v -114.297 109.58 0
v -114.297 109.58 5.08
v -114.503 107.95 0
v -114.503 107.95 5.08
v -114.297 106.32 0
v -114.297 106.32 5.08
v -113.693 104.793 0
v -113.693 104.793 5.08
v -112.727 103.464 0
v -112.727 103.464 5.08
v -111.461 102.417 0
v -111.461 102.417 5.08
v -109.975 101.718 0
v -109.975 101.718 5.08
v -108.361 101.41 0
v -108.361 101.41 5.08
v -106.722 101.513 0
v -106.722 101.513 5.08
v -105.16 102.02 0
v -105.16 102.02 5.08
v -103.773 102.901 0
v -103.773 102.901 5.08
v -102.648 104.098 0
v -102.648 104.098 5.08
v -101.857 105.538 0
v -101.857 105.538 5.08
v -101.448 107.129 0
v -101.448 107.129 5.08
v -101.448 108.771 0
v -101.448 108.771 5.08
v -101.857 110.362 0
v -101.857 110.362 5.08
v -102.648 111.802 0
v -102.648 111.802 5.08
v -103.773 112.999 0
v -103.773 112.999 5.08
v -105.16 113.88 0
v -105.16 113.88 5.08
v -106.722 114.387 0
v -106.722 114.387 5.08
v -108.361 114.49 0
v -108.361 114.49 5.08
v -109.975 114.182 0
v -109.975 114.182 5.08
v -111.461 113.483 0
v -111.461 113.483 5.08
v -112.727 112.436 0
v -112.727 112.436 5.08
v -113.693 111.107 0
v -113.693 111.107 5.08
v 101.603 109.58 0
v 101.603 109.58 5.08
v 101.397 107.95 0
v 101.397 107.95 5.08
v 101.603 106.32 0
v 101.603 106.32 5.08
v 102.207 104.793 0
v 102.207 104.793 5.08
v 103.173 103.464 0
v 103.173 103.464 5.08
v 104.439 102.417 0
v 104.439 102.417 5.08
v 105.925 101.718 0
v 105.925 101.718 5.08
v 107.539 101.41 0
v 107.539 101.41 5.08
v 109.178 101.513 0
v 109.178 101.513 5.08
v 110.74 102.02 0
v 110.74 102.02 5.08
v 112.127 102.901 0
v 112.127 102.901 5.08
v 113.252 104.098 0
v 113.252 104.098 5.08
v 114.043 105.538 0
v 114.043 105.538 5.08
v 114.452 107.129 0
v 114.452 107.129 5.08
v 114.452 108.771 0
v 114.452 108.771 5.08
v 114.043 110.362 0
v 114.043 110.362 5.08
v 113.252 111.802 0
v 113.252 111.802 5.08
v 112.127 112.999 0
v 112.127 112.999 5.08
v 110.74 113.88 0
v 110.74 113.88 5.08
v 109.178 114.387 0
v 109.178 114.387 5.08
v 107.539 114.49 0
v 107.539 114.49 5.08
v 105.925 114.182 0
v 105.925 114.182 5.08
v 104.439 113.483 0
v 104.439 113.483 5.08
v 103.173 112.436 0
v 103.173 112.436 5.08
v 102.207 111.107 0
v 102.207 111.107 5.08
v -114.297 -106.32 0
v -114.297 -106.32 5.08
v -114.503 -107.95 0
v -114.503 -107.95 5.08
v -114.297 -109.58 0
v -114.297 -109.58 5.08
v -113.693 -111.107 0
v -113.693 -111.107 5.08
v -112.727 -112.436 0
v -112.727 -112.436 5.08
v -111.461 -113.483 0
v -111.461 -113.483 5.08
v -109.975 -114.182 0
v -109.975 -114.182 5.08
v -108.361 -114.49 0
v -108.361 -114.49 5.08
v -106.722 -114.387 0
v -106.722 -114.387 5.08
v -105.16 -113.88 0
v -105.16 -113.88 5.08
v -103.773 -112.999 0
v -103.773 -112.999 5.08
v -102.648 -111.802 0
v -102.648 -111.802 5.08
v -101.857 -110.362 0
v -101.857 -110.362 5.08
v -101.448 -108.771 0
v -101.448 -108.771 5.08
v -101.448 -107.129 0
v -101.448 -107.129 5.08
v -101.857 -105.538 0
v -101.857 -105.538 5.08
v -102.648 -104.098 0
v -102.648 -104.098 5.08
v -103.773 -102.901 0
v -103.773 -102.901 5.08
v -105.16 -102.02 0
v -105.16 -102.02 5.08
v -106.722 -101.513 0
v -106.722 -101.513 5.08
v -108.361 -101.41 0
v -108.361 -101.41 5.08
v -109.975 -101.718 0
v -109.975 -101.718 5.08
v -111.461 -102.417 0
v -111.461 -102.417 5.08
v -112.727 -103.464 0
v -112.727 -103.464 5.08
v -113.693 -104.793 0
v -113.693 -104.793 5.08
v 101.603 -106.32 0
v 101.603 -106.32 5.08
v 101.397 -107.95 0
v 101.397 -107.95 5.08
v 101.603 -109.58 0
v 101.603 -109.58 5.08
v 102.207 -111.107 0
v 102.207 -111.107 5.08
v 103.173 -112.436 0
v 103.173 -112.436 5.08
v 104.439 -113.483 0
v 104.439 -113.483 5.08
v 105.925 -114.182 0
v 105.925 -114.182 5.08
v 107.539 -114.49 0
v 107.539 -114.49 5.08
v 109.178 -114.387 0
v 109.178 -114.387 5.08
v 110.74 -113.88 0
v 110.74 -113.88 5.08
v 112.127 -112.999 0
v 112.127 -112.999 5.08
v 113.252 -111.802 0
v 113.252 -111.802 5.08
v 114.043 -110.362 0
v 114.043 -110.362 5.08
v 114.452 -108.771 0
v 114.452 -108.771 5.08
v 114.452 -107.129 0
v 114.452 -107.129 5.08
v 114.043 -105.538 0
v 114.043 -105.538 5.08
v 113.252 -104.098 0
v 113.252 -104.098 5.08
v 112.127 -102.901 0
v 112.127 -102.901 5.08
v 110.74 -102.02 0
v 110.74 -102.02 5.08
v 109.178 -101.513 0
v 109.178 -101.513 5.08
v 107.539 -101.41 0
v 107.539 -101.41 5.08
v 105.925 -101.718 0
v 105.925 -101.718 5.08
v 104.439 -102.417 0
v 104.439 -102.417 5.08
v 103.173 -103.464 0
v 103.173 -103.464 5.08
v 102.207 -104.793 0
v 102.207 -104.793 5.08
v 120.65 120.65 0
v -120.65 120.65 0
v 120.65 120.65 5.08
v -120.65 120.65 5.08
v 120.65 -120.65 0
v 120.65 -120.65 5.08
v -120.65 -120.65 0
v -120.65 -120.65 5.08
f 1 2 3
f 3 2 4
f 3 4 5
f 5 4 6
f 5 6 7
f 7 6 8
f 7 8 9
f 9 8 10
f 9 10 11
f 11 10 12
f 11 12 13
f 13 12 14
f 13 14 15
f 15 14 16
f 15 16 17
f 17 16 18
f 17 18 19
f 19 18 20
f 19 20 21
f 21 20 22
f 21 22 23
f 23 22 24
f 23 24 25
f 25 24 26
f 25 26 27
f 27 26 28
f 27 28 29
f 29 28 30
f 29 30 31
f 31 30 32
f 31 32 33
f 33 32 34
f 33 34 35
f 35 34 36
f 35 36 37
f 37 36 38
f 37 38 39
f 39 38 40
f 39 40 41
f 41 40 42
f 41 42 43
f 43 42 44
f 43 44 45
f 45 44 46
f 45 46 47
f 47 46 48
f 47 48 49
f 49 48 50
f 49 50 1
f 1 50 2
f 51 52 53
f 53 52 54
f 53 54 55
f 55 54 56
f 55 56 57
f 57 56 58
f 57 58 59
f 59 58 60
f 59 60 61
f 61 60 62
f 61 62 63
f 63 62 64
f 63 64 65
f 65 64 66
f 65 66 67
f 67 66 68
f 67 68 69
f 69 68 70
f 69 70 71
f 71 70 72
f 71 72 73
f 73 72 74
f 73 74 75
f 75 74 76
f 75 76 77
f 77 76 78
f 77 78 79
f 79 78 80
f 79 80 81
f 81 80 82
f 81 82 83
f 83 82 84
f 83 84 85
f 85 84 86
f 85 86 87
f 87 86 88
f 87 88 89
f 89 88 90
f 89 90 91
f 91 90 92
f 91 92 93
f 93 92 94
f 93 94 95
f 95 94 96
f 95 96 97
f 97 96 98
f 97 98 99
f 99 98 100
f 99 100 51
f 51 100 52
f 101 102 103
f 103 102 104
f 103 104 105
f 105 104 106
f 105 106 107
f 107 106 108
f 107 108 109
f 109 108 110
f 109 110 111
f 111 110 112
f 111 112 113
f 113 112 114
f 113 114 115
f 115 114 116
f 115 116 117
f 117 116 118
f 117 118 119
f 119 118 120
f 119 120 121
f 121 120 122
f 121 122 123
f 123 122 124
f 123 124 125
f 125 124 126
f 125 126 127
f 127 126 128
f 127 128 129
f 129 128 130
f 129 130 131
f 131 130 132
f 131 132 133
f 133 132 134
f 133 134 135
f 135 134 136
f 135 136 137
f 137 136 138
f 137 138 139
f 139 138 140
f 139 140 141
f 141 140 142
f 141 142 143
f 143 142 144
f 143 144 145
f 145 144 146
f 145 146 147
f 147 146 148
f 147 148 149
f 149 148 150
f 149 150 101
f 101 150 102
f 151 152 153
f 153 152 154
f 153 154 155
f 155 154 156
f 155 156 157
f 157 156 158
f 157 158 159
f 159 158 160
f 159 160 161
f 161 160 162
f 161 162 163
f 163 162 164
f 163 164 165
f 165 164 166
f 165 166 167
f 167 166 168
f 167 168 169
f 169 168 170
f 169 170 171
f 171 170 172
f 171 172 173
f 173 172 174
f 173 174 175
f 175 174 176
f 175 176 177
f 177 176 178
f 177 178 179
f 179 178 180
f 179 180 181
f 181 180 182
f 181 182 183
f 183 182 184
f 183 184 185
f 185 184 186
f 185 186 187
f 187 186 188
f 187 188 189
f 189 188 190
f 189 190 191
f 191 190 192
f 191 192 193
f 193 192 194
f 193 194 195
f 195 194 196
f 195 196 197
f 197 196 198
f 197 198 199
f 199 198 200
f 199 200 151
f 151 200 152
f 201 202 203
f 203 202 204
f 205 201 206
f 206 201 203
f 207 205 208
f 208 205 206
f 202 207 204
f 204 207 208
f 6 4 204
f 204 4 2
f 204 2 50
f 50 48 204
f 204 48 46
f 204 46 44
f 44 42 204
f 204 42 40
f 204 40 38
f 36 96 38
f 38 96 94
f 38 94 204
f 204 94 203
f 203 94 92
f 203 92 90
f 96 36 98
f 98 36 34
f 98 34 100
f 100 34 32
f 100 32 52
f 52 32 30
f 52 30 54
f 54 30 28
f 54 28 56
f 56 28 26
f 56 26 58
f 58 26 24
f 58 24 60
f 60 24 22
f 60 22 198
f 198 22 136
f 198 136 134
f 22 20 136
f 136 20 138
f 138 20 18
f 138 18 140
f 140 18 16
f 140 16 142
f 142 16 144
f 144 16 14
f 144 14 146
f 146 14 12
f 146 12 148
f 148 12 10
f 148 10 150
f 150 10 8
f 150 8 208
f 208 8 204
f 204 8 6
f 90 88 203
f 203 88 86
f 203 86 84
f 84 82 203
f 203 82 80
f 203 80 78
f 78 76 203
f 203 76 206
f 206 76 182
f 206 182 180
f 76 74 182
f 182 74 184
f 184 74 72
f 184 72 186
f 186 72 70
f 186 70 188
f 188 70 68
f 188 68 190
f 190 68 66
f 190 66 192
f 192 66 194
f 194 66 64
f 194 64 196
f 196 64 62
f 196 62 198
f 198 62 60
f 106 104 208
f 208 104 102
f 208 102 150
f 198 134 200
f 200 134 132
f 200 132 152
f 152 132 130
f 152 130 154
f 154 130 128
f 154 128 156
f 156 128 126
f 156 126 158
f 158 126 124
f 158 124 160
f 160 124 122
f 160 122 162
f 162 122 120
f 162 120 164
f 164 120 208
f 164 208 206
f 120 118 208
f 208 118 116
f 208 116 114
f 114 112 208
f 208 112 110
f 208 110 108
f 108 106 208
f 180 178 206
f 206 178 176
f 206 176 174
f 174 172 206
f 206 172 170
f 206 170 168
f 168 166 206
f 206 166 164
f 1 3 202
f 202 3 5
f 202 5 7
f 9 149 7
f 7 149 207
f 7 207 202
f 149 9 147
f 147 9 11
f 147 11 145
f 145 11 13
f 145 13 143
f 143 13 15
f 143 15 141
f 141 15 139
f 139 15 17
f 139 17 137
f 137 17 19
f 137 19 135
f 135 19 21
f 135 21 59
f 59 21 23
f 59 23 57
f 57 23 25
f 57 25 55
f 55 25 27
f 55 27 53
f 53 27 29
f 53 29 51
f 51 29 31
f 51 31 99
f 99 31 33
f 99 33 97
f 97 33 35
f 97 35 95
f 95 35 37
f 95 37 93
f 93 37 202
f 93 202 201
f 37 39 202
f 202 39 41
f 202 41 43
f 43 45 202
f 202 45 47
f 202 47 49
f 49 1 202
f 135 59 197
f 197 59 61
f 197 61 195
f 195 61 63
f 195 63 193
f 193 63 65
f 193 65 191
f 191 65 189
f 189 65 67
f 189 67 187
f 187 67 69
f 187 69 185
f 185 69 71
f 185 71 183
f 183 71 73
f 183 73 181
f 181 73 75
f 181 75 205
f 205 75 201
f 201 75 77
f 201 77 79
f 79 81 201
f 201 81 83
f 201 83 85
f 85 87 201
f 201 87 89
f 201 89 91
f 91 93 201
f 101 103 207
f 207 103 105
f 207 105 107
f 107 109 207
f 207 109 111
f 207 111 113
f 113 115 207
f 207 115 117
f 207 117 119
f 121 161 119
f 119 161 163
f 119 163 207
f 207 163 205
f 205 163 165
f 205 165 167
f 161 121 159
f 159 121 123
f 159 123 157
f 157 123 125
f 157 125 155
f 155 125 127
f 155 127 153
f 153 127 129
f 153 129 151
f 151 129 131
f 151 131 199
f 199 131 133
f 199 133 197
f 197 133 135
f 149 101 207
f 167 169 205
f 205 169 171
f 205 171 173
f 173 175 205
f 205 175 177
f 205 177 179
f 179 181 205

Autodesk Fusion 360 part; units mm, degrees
sketch "Module Outline" plane through (0, 0, 0) normal (0, 0, 1) x (1, 0, 0)
  line L0 (-120.65, -120.65) -> (120.65, -120.65)
  line L1 (120.65, -120.65) -> (120.65, 120.65)
  line L2 (120.65, 120.65) -> (-120.65, 120.65)
  line L3 (-120.65, 120.65) -> (-120.65, -120.65)
  line L4 (-120.65, -120.65) -> (120.65, 120.65) construction
  line L5 (120.65, -120.65) -> (-120.65, 120.65) construction
  dimension "d17" = 241.3
  dimension "d18" = 241.3
extrude "Shelf Plate" add sketch "Module Outline" along normal blind 5.08
sketch "Anchor Locations" plane through (0, 0, 5.08) normal (0, 0, 1) x (1, 0, 0)
  line L0 (-120.65, 120.65) -> (-120.65, -120.65)
  line L1 (-120.65, -120.65) -> (120.65, -120.65)
  line L2 (120.65, -120.65) -> (120.65, 120.65)
  line L3 (120.65, 120.65) -> (-120.65, 120.65)
  line L4 (120.65, 120.65) -> (107.95, 107.95) construction
  line L5 (120.65, -120.65) -> (120.65, 120.65) construction
  line L6 (-120.65, -120.65) -> (120.65, -120.65) construction
  line L7 (-120.65, 120.65) -> (-120.65, -120.65) construction
  line L8 (120.65, 120.65) -> (-120.65, 120.65) construction
  line L9 (0, 134.6139) -> (0, -139.7)
  point P0 (-107.95, 107.95)
  dimension "d22" = 12.7
  dimension "d23" = 12.7
sketch "Socket Geometry" plane through (0, 0, 5.08) normal (0, 0, 1) x (1, 0, 0)
  line L0 (-120.65, 120.65) -> (-120.65, -120.65)
  line L1 (-120.65, -120.65) -> (120.65, -120.65)
  line L2 (120.65, -120.65) -> (120.65, 120.65)
  line L3 (120.65, 120.65) -> (-120.65, 120.65)
  circle A0 centre (107.95, 107.95) radius 6.5532
  line L4 (0, 127) -> (0, -127)
  circle A1 centre (-107.95, 107.95) radius 6.5532
  line L5 (-130.6691, 0) -> (143.6907, 0)
  circle A2 centre (107.95, -107.95) radius 6.5532
  circle A3 centre (-107.95, -107.95) radius 6.5532
  point P0 (107.95, 107.95)
  point P1 (-101.6, 101.6)
  point P2 (-101.6, -101.6)
  point P3 (101.6, -101.6)
  dimension "d28" = 13.1064
extrude "Socket Cut" cut sketch "Socket Geometry" against normal blind 7.62 contours A0 | A1 | A2 | A3
equation "shelfLength = 12 in"
equation "shelfDepth = 8 in"
equation "shelfThickness = 0.20 in"
equation "lipHeight = 1 in"
equation "cornerRadius = 0.5 in"
equation "clearance = 0.008 in"
equation "tileWidth = 9.5 in"
equation "tileDepth = 9.5 in"
equation "tileThickness = 0.2 in"
equation "columnSocketDiameter = 0.75 in"
equation "columnDiameter = 0.7 in"
equation "socketInset = 0.5 in"
equation "socketDepth = 0.3 in"
equation "socketWall = 0.12 in"
equation "filletSmall = 0.06 in"
equation "filletMedium = 0.12 in"
equation "d17 = tileWidth"
equation "d18 = tileDepth"
equation "d19 = shelfThickness"
equation "anchorOffset = 0.5 in"
equation "d22 = anchorOffset"
equation "d23 = anchorOffset"
equation "pinDiameter = 0.5 in"
equation "socketDiameter = pinDiameter + ( 2 * clearance )"
equation "d28 = socketDiameter"
equation "d29 = -socketDepth"
